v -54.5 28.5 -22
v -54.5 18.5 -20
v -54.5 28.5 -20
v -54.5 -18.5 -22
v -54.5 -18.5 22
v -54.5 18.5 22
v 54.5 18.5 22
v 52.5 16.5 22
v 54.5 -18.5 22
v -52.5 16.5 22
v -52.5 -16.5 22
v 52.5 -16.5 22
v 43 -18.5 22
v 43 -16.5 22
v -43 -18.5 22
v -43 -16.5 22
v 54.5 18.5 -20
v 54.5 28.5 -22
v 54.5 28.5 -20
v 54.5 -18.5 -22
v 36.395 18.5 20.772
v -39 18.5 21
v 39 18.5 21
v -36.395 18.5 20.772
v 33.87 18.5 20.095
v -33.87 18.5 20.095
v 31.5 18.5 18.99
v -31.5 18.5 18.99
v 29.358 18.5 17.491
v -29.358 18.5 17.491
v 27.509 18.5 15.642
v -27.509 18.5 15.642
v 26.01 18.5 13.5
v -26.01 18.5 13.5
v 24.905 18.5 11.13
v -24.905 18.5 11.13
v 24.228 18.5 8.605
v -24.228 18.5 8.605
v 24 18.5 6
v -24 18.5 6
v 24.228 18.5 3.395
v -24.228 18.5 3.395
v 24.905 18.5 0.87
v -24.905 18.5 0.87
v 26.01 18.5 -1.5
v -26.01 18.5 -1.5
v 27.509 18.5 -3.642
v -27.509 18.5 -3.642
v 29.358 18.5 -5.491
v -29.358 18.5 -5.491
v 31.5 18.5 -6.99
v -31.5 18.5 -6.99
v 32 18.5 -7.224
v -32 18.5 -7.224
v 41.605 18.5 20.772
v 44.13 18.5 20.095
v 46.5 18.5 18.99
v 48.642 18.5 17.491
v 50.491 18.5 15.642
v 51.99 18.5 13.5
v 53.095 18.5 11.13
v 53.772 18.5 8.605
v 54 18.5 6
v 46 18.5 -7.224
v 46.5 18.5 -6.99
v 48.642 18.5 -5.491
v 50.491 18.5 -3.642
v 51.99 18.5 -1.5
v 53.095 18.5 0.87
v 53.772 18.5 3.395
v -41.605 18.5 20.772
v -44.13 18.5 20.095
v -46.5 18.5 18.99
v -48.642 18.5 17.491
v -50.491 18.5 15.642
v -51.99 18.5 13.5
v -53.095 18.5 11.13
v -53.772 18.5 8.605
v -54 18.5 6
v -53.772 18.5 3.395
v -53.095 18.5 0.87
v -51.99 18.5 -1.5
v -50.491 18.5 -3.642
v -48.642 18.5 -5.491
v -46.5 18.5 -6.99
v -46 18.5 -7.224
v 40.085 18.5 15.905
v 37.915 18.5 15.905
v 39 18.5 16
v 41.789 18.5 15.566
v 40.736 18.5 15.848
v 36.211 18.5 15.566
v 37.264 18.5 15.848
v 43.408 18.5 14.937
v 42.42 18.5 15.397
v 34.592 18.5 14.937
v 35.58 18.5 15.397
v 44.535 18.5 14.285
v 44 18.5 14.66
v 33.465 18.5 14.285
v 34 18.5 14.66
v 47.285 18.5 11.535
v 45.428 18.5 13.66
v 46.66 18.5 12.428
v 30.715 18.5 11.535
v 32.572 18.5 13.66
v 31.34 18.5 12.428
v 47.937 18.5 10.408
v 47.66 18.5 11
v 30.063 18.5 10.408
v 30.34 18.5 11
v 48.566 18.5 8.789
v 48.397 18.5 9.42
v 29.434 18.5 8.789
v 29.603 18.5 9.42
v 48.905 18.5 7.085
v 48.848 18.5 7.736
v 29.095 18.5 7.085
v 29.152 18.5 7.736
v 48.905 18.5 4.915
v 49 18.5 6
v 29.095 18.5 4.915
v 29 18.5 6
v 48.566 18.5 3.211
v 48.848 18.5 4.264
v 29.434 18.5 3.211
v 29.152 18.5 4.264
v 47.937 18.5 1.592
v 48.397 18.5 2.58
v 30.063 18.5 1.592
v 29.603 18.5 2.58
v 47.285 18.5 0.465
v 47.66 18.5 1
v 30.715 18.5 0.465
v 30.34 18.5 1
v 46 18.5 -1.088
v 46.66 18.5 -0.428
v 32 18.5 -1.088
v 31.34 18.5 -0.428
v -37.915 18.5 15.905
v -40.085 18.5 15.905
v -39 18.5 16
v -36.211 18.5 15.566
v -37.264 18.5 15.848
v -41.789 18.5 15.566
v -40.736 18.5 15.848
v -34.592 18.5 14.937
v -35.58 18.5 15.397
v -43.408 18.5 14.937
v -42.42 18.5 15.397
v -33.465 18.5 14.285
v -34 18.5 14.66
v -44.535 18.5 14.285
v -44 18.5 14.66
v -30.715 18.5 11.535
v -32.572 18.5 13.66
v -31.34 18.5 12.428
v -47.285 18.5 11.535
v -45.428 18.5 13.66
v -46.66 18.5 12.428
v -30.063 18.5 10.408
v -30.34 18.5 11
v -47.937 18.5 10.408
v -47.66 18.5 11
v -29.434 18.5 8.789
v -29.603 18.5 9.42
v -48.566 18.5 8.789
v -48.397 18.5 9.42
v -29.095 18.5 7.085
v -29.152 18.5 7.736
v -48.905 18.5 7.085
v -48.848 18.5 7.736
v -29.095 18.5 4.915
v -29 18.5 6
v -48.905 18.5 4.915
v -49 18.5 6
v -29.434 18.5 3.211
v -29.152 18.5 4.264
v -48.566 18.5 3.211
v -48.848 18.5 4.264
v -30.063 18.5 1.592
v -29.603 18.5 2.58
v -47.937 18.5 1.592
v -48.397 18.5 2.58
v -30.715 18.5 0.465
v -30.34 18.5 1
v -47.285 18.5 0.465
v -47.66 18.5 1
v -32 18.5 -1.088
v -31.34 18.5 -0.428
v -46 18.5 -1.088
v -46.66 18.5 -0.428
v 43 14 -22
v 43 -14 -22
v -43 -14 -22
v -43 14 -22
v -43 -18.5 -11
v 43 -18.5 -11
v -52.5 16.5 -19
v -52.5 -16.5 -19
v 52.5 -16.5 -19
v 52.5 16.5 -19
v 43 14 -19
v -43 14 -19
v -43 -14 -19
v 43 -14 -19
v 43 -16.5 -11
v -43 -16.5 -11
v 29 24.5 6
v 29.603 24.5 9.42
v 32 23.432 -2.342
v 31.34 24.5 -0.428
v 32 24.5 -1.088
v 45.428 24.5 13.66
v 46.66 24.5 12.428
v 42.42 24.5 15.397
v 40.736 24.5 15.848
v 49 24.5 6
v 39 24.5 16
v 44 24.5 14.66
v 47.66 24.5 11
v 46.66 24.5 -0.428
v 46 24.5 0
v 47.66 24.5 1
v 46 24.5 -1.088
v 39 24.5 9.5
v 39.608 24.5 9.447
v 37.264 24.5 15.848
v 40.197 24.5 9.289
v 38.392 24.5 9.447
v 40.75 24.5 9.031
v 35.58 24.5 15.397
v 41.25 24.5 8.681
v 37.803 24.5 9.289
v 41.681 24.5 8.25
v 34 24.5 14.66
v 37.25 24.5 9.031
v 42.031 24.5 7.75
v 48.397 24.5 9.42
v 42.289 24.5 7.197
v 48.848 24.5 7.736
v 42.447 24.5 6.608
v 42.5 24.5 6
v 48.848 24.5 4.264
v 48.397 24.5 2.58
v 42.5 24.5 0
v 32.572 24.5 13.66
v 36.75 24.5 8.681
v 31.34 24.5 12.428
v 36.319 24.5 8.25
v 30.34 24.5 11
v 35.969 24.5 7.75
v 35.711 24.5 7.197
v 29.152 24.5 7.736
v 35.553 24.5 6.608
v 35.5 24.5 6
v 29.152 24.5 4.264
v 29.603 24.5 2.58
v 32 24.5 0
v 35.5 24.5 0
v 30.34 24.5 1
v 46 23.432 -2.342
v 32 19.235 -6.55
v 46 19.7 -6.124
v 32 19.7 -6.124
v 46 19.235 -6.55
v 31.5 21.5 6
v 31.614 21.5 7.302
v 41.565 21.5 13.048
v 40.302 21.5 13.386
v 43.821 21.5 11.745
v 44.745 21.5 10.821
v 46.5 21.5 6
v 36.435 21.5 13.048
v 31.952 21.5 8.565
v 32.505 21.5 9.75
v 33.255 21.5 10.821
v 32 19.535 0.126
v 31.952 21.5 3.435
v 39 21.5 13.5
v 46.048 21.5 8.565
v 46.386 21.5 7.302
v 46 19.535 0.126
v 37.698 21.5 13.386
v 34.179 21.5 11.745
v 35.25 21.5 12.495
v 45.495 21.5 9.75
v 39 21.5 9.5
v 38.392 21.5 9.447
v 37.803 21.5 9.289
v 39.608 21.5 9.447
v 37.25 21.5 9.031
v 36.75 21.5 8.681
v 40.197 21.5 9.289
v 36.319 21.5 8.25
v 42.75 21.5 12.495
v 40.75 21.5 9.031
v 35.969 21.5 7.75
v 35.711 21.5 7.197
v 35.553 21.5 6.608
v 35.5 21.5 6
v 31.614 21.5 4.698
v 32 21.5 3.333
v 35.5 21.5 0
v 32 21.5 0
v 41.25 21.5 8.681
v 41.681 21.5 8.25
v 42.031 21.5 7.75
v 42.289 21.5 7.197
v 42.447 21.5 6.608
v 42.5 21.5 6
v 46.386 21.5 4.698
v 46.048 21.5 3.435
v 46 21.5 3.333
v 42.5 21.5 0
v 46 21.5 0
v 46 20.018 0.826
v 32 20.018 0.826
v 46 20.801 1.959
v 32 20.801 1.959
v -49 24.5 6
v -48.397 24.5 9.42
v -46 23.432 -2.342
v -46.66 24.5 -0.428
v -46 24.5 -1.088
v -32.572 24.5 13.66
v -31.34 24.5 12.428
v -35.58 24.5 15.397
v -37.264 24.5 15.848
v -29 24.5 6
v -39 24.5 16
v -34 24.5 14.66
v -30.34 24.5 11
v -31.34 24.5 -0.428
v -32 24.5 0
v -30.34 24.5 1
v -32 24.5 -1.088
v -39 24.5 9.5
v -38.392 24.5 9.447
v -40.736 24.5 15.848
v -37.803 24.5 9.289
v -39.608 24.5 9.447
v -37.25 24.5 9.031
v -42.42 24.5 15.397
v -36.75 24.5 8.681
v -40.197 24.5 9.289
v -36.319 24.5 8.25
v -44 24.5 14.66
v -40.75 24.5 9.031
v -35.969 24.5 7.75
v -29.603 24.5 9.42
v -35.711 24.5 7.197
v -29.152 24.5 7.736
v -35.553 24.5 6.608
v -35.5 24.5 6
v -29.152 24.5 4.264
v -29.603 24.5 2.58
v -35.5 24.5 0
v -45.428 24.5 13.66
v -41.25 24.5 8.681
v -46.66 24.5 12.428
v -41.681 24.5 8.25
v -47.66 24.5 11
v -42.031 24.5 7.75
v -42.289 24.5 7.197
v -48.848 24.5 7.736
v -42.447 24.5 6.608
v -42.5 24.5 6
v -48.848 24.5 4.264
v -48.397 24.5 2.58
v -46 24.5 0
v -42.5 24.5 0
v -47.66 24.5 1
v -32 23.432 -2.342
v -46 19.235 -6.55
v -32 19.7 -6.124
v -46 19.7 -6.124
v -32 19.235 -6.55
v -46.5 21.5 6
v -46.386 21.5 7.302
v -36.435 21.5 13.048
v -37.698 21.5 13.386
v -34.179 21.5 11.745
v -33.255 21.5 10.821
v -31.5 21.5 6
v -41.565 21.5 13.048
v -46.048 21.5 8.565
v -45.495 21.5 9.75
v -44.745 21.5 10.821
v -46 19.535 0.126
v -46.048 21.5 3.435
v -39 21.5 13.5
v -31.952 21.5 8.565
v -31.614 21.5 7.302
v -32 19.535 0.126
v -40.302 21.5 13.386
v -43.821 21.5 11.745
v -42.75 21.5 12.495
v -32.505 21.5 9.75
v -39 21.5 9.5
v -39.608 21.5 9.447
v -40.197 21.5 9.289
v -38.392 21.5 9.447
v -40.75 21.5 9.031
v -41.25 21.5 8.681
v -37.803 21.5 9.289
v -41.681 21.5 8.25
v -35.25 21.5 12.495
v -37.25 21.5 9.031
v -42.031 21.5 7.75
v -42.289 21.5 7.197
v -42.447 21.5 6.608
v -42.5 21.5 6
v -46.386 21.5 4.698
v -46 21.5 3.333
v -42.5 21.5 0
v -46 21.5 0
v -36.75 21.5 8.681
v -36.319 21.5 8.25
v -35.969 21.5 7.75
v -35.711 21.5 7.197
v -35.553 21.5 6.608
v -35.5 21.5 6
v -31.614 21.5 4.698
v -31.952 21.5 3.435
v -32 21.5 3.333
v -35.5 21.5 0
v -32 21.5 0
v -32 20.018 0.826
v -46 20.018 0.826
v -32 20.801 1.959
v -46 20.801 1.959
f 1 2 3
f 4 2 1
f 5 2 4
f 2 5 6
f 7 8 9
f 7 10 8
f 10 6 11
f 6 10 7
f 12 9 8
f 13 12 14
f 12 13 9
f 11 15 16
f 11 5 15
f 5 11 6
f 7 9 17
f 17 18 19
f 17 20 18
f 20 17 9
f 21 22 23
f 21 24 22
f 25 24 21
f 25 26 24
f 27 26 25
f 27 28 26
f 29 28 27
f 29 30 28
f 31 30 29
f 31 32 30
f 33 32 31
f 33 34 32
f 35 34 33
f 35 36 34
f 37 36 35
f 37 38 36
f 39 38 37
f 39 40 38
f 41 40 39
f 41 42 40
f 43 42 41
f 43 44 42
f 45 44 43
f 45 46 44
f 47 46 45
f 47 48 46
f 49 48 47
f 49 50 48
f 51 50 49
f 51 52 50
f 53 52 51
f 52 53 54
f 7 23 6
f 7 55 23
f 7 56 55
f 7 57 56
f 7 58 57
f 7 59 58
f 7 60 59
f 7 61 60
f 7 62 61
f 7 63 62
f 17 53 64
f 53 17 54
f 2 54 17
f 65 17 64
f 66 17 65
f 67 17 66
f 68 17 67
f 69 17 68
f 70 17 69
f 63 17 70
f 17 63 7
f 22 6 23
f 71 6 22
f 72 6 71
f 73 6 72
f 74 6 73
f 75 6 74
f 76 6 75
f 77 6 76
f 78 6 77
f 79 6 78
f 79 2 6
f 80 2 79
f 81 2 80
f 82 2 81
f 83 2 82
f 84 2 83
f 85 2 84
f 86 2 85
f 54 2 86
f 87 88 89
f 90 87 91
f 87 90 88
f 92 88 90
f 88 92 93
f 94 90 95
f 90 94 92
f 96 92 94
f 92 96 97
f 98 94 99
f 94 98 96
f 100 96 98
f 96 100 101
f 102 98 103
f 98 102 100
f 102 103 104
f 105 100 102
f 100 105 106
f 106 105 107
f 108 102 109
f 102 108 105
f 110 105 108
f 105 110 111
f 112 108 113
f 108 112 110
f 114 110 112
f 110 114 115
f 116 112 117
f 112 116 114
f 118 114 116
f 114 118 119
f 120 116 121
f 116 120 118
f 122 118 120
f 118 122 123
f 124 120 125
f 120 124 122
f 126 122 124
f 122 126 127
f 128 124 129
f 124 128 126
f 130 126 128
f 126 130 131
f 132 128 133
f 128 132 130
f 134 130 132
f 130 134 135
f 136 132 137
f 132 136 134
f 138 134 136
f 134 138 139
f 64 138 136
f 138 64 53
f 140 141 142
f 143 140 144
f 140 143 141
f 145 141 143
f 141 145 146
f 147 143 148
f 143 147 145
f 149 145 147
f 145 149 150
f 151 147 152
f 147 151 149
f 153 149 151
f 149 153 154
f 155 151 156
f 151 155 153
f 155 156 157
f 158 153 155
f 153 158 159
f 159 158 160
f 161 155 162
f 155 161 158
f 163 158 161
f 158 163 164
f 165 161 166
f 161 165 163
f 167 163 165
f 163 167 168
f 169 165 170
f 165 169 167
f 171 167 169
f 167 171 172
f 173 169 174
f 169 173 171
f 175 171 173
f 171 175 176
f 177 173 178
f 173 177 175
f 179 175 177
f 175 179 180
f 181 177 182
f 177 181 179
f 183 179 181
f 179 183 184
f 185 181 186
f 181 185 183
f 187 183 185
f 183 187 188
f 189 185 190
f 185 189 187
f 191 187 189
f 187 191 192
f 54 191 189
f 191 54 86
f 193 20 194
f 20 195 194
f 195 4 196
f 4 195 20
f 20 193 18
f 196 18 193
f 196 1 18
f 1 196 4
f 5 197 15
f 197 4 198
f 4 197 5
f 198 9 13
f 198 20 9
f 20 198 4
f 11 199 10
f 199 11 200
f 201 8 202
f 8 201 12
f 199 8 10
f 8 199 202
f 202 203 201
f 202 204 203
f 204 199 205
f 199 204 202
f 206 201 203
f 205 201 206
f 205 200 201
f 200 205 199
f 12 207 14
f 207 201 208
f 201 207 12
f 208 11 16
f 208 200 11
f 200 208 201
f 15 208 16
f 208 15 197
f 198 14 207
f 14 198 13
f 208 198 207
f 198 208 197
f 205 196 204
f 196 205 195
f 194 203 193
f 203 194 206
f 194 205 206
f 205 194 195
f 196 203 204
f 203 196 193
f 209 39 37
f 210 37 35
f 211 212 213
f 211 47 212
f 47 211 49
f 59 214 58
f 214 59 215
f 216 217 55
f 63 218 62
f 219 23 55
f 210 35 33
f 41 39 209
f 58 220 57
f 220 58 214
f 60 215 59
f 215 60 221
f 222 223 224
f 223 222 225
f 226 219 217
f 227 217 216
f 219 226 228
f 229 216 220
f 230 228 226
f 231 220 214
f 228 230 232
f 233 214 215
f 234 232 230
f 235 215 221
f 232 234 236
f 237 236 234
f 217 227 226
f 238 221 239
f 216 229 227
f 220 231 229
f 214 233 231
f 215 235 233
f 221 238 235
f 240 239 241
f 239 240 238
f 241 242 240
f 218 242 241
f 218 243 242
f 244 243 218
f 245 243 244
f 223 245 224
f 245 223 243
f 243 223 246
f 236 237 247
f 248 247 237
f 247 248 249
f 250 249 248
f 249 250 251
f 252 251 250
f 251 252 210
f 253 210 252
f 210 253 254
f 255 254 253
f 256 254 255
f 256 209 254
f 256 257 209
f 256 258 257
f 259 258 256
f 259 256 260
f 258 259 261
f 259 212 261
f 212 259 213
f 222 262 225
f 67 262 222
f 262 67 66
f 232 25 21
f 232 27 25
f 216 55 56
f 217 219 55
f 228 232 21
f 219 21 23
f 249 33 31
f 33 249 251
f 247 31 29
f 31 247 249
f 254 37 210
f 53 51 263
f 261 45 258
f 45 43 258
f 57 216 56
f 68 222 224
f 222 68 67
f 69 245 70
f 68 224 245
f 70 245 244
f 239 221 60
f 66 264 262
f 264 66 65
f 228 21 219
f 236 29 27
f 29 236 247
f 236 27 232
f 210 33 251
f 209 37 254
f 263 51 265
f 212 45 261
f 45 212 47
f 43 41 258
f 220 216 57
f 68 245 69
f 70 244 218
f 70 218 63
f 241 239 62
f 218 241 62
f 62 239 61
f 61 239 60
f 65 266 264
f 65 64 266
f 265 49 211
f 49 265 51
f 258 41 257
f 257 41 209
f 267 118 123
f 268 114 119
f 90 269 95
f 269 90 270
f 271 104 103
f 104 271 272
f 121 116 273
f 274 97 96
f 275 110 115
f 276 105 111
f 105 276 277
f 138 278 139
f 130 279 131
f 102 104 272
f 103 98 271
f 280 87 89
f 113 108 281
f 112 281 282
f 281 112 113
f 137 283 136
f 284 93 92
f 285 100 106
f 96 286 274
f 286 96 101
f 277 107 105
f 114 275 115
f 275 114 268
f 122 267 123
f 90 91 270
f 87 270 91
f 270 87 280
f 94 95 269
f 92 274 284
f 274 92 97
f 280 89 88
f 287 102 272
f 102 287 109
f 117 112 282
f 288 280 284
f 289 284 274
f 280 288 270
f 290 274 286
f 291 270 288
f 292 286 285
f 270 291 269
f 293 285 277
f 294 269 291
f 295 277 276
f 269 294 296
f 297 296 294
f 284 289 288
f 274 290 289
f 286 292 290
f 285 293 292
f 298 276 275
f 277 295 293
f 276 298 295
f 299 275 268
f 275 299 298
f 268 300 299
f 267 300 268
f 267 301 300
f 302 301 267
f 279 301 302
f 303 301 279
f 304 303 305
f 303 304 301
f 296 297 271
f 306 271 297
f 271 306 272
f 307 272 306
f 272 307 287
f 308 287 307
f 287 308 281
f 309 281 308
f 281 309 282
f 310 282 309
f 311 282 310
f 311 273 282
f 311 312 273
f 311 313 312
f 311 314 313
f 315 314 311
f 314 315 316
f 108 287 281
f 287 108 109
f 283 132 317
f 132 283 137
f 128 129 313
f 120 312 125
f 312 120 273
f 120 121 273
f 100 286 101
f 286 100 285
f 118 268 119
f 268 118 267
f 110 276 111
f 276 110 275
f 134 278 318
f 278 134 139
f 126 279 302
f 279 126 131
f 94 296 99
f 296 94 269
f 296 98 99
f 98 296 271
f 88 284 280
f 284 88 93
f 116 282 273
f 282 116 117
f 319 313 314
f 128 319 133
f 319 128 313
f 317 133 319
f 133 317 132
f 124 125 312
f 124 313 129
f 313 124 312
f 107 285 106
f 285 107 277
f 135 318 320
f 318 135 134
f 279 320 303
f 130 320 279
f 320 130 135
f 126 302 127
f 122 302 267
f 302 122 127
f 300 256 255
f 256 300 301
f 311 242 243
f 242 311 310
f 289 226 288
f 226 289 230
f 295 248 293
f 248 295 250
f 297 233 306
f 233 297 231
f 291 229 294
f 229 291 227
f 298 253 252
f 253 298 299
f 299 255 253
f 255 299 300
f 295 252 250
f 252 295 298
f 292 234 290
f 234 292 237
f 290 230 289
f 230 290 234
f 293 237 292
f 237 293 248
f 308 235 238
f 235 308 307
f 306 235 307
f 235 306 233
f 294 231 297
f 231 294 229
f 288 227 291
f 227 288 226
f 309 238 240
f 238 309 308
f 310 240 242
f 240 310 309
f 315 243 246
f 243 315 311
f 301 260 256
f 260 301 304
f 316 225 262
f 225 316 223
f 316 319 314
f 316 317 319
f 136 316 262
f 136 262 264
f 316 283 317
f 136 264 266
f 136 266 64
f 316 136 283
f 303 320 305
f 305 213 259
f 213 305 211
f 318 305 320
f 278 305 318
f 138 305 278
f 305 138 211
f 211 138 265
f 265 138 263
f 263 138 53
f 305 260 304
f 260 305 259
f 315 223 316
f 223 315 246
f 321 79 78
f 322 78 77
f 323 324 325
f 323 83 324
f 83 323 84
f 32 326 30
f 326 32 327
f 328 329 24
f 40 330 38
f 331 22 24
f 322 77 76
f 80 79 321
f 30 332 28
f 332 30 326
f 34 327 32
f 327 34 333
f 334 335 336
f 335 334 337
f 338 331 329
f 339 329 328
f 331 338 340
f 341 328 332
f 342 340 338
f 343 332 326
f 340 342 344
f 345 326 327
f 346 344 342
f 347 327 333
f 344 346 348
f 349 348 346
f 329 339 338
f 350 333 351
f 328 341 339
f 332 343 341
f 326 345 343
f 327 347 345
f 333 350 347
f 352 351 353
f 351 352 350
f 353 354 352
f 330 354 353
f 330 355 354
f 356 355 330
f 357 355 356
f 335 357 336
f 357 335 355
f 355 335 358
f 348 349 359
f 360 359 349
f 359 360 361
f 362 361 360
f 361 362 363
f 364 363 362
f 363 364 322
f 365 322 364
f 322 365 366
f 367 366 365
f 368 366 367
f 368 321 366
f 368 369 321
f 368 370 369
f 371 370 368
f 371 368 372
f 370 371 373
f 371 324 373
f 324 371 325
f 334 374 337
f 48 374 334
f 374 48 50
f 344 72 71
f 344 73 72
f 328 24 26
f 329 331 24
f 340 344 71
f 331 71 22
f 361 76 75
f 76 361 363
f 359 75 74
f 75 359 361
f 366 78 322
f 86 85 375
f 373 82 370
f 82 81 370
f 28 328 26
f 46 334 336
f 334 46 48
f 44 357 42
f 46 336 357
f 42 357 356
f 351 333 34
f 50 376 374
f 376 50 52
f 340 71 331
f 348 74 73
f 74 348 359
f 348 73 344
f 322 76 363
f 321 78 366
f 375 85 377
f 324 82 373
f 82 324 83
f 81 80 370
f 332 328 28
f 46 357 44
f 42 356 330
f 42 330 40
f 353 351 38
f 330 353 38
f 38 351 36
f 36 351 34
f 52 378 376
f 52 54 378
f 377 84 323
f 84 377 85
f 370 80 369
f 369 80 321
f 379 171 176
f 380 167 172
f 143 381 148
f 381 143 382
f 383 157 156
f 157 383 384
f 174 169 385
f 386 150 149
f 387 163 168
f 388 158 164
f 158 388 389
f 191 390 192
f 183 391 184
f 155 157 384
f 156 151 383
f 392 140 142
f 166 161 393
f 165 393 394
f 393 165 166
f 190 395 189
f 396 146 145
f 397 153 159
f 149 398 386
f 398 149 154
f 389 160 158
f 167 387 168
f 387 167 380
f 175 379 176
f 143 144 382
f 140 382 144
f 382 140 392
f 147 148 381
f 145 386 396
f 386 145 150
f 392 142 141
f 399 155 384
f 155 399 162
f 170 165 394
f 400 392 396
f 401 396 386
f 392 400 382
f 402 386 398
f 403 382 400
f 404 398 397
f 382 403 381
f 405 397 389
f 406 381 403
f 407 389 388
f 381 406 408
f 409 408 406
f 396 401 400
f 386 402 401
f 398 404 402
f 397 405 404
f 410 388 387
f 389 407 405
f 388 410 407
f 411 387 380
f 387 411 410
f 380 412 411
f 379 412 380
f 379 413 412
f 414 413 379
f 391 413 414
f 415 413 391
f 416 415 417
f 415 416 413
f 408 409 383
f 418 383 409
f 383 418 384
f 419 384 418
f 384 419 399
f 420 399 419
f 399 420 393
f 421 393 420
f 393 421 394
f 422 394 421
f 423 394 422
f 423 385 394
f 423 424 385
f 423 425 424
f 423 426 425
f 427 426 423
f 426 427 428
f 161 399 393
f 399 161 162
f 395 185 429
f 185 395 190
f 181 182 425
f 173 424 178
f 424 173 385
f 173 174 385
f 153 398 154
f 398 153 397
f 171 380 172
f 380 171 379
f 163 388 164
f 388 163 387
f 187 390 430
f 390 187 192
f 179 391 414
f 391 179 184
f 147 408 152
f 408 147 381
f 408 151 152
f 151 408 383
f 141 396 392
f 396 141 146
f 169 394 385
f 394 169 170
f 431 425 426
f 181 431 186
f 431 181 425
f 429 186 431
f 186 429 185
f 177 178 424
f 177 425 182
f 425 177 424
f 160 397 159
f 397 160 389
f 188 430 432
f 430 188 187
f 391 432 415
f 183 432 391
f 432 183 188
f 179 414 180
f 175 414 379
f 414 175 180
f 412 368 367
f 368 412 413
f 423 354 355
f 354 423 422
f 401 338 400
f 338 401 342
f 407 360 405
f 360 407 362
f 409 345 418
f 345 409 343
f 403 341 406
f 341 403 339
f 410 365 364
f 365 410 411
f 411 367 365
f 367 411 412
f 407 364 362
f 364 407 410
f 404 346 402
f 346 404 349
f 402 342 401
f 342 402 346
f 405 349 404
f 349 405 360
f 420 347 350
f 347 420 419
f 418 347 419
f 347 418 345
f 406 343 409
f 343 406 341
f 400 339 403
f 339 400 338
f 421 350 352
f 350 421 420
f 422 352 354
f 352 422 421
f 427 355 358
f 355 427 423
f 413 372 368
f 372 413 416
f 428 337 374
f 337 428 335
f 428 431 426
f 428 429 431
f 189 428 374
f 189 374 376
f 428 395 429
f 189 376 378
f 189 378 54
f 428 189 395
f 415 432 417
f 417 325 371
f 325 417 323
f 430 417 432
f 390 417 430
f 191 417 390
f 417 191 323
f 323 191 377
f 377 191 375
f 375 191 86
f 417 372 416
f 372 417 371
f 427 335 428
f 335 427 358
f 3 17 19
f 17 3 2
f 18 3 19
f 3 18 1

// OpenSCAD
$fn = 36;

module zuignaphouder(){
    difference(){
        difference(){
            difference(){
                translate([0,0,5])    
                    cylinder(h = 6, d1 = 30, d2 = 20, center = true);
                translate([0,0,2])    
                    cylinder(h = 6, d1 = 25, d2 = 15, center = true);    
            }
            cylinder(h = 20, d = 7, center = true);
        }

        union(){
            translate([0,-10,6.5]) 
                cube([7,20,3], center = true);

            translate([0,-10,6.5]) 
                cube([14,8,3], center = true);

            translate([0,-10,3.5]) 
                cube([14,15,3], center = true);
        }
    }
}

//linear_extrude(height = 2)
//    square([40,40], center = true);

difference(){
    difference(){
        difference(){
            cube([109,37,44], center = true);
            translate([0,0,2])
                cube([105,33,42], center = true);
        }
        translate([0,-3,10])
            cube([86,35,42], center = true);
    }
    translate([0,0,-10])
        cube([86,28,42], center = true);
}    

translate([39,33/2,6])
    rotate([90,0,180])
        zuignaphouder();

translate([-39,33/2,6])
    rotate([90,0,180])
        zuignaphouder();

translate([0,(37/2)+4.5,-21])
    cube([109,11,2], center = true);
